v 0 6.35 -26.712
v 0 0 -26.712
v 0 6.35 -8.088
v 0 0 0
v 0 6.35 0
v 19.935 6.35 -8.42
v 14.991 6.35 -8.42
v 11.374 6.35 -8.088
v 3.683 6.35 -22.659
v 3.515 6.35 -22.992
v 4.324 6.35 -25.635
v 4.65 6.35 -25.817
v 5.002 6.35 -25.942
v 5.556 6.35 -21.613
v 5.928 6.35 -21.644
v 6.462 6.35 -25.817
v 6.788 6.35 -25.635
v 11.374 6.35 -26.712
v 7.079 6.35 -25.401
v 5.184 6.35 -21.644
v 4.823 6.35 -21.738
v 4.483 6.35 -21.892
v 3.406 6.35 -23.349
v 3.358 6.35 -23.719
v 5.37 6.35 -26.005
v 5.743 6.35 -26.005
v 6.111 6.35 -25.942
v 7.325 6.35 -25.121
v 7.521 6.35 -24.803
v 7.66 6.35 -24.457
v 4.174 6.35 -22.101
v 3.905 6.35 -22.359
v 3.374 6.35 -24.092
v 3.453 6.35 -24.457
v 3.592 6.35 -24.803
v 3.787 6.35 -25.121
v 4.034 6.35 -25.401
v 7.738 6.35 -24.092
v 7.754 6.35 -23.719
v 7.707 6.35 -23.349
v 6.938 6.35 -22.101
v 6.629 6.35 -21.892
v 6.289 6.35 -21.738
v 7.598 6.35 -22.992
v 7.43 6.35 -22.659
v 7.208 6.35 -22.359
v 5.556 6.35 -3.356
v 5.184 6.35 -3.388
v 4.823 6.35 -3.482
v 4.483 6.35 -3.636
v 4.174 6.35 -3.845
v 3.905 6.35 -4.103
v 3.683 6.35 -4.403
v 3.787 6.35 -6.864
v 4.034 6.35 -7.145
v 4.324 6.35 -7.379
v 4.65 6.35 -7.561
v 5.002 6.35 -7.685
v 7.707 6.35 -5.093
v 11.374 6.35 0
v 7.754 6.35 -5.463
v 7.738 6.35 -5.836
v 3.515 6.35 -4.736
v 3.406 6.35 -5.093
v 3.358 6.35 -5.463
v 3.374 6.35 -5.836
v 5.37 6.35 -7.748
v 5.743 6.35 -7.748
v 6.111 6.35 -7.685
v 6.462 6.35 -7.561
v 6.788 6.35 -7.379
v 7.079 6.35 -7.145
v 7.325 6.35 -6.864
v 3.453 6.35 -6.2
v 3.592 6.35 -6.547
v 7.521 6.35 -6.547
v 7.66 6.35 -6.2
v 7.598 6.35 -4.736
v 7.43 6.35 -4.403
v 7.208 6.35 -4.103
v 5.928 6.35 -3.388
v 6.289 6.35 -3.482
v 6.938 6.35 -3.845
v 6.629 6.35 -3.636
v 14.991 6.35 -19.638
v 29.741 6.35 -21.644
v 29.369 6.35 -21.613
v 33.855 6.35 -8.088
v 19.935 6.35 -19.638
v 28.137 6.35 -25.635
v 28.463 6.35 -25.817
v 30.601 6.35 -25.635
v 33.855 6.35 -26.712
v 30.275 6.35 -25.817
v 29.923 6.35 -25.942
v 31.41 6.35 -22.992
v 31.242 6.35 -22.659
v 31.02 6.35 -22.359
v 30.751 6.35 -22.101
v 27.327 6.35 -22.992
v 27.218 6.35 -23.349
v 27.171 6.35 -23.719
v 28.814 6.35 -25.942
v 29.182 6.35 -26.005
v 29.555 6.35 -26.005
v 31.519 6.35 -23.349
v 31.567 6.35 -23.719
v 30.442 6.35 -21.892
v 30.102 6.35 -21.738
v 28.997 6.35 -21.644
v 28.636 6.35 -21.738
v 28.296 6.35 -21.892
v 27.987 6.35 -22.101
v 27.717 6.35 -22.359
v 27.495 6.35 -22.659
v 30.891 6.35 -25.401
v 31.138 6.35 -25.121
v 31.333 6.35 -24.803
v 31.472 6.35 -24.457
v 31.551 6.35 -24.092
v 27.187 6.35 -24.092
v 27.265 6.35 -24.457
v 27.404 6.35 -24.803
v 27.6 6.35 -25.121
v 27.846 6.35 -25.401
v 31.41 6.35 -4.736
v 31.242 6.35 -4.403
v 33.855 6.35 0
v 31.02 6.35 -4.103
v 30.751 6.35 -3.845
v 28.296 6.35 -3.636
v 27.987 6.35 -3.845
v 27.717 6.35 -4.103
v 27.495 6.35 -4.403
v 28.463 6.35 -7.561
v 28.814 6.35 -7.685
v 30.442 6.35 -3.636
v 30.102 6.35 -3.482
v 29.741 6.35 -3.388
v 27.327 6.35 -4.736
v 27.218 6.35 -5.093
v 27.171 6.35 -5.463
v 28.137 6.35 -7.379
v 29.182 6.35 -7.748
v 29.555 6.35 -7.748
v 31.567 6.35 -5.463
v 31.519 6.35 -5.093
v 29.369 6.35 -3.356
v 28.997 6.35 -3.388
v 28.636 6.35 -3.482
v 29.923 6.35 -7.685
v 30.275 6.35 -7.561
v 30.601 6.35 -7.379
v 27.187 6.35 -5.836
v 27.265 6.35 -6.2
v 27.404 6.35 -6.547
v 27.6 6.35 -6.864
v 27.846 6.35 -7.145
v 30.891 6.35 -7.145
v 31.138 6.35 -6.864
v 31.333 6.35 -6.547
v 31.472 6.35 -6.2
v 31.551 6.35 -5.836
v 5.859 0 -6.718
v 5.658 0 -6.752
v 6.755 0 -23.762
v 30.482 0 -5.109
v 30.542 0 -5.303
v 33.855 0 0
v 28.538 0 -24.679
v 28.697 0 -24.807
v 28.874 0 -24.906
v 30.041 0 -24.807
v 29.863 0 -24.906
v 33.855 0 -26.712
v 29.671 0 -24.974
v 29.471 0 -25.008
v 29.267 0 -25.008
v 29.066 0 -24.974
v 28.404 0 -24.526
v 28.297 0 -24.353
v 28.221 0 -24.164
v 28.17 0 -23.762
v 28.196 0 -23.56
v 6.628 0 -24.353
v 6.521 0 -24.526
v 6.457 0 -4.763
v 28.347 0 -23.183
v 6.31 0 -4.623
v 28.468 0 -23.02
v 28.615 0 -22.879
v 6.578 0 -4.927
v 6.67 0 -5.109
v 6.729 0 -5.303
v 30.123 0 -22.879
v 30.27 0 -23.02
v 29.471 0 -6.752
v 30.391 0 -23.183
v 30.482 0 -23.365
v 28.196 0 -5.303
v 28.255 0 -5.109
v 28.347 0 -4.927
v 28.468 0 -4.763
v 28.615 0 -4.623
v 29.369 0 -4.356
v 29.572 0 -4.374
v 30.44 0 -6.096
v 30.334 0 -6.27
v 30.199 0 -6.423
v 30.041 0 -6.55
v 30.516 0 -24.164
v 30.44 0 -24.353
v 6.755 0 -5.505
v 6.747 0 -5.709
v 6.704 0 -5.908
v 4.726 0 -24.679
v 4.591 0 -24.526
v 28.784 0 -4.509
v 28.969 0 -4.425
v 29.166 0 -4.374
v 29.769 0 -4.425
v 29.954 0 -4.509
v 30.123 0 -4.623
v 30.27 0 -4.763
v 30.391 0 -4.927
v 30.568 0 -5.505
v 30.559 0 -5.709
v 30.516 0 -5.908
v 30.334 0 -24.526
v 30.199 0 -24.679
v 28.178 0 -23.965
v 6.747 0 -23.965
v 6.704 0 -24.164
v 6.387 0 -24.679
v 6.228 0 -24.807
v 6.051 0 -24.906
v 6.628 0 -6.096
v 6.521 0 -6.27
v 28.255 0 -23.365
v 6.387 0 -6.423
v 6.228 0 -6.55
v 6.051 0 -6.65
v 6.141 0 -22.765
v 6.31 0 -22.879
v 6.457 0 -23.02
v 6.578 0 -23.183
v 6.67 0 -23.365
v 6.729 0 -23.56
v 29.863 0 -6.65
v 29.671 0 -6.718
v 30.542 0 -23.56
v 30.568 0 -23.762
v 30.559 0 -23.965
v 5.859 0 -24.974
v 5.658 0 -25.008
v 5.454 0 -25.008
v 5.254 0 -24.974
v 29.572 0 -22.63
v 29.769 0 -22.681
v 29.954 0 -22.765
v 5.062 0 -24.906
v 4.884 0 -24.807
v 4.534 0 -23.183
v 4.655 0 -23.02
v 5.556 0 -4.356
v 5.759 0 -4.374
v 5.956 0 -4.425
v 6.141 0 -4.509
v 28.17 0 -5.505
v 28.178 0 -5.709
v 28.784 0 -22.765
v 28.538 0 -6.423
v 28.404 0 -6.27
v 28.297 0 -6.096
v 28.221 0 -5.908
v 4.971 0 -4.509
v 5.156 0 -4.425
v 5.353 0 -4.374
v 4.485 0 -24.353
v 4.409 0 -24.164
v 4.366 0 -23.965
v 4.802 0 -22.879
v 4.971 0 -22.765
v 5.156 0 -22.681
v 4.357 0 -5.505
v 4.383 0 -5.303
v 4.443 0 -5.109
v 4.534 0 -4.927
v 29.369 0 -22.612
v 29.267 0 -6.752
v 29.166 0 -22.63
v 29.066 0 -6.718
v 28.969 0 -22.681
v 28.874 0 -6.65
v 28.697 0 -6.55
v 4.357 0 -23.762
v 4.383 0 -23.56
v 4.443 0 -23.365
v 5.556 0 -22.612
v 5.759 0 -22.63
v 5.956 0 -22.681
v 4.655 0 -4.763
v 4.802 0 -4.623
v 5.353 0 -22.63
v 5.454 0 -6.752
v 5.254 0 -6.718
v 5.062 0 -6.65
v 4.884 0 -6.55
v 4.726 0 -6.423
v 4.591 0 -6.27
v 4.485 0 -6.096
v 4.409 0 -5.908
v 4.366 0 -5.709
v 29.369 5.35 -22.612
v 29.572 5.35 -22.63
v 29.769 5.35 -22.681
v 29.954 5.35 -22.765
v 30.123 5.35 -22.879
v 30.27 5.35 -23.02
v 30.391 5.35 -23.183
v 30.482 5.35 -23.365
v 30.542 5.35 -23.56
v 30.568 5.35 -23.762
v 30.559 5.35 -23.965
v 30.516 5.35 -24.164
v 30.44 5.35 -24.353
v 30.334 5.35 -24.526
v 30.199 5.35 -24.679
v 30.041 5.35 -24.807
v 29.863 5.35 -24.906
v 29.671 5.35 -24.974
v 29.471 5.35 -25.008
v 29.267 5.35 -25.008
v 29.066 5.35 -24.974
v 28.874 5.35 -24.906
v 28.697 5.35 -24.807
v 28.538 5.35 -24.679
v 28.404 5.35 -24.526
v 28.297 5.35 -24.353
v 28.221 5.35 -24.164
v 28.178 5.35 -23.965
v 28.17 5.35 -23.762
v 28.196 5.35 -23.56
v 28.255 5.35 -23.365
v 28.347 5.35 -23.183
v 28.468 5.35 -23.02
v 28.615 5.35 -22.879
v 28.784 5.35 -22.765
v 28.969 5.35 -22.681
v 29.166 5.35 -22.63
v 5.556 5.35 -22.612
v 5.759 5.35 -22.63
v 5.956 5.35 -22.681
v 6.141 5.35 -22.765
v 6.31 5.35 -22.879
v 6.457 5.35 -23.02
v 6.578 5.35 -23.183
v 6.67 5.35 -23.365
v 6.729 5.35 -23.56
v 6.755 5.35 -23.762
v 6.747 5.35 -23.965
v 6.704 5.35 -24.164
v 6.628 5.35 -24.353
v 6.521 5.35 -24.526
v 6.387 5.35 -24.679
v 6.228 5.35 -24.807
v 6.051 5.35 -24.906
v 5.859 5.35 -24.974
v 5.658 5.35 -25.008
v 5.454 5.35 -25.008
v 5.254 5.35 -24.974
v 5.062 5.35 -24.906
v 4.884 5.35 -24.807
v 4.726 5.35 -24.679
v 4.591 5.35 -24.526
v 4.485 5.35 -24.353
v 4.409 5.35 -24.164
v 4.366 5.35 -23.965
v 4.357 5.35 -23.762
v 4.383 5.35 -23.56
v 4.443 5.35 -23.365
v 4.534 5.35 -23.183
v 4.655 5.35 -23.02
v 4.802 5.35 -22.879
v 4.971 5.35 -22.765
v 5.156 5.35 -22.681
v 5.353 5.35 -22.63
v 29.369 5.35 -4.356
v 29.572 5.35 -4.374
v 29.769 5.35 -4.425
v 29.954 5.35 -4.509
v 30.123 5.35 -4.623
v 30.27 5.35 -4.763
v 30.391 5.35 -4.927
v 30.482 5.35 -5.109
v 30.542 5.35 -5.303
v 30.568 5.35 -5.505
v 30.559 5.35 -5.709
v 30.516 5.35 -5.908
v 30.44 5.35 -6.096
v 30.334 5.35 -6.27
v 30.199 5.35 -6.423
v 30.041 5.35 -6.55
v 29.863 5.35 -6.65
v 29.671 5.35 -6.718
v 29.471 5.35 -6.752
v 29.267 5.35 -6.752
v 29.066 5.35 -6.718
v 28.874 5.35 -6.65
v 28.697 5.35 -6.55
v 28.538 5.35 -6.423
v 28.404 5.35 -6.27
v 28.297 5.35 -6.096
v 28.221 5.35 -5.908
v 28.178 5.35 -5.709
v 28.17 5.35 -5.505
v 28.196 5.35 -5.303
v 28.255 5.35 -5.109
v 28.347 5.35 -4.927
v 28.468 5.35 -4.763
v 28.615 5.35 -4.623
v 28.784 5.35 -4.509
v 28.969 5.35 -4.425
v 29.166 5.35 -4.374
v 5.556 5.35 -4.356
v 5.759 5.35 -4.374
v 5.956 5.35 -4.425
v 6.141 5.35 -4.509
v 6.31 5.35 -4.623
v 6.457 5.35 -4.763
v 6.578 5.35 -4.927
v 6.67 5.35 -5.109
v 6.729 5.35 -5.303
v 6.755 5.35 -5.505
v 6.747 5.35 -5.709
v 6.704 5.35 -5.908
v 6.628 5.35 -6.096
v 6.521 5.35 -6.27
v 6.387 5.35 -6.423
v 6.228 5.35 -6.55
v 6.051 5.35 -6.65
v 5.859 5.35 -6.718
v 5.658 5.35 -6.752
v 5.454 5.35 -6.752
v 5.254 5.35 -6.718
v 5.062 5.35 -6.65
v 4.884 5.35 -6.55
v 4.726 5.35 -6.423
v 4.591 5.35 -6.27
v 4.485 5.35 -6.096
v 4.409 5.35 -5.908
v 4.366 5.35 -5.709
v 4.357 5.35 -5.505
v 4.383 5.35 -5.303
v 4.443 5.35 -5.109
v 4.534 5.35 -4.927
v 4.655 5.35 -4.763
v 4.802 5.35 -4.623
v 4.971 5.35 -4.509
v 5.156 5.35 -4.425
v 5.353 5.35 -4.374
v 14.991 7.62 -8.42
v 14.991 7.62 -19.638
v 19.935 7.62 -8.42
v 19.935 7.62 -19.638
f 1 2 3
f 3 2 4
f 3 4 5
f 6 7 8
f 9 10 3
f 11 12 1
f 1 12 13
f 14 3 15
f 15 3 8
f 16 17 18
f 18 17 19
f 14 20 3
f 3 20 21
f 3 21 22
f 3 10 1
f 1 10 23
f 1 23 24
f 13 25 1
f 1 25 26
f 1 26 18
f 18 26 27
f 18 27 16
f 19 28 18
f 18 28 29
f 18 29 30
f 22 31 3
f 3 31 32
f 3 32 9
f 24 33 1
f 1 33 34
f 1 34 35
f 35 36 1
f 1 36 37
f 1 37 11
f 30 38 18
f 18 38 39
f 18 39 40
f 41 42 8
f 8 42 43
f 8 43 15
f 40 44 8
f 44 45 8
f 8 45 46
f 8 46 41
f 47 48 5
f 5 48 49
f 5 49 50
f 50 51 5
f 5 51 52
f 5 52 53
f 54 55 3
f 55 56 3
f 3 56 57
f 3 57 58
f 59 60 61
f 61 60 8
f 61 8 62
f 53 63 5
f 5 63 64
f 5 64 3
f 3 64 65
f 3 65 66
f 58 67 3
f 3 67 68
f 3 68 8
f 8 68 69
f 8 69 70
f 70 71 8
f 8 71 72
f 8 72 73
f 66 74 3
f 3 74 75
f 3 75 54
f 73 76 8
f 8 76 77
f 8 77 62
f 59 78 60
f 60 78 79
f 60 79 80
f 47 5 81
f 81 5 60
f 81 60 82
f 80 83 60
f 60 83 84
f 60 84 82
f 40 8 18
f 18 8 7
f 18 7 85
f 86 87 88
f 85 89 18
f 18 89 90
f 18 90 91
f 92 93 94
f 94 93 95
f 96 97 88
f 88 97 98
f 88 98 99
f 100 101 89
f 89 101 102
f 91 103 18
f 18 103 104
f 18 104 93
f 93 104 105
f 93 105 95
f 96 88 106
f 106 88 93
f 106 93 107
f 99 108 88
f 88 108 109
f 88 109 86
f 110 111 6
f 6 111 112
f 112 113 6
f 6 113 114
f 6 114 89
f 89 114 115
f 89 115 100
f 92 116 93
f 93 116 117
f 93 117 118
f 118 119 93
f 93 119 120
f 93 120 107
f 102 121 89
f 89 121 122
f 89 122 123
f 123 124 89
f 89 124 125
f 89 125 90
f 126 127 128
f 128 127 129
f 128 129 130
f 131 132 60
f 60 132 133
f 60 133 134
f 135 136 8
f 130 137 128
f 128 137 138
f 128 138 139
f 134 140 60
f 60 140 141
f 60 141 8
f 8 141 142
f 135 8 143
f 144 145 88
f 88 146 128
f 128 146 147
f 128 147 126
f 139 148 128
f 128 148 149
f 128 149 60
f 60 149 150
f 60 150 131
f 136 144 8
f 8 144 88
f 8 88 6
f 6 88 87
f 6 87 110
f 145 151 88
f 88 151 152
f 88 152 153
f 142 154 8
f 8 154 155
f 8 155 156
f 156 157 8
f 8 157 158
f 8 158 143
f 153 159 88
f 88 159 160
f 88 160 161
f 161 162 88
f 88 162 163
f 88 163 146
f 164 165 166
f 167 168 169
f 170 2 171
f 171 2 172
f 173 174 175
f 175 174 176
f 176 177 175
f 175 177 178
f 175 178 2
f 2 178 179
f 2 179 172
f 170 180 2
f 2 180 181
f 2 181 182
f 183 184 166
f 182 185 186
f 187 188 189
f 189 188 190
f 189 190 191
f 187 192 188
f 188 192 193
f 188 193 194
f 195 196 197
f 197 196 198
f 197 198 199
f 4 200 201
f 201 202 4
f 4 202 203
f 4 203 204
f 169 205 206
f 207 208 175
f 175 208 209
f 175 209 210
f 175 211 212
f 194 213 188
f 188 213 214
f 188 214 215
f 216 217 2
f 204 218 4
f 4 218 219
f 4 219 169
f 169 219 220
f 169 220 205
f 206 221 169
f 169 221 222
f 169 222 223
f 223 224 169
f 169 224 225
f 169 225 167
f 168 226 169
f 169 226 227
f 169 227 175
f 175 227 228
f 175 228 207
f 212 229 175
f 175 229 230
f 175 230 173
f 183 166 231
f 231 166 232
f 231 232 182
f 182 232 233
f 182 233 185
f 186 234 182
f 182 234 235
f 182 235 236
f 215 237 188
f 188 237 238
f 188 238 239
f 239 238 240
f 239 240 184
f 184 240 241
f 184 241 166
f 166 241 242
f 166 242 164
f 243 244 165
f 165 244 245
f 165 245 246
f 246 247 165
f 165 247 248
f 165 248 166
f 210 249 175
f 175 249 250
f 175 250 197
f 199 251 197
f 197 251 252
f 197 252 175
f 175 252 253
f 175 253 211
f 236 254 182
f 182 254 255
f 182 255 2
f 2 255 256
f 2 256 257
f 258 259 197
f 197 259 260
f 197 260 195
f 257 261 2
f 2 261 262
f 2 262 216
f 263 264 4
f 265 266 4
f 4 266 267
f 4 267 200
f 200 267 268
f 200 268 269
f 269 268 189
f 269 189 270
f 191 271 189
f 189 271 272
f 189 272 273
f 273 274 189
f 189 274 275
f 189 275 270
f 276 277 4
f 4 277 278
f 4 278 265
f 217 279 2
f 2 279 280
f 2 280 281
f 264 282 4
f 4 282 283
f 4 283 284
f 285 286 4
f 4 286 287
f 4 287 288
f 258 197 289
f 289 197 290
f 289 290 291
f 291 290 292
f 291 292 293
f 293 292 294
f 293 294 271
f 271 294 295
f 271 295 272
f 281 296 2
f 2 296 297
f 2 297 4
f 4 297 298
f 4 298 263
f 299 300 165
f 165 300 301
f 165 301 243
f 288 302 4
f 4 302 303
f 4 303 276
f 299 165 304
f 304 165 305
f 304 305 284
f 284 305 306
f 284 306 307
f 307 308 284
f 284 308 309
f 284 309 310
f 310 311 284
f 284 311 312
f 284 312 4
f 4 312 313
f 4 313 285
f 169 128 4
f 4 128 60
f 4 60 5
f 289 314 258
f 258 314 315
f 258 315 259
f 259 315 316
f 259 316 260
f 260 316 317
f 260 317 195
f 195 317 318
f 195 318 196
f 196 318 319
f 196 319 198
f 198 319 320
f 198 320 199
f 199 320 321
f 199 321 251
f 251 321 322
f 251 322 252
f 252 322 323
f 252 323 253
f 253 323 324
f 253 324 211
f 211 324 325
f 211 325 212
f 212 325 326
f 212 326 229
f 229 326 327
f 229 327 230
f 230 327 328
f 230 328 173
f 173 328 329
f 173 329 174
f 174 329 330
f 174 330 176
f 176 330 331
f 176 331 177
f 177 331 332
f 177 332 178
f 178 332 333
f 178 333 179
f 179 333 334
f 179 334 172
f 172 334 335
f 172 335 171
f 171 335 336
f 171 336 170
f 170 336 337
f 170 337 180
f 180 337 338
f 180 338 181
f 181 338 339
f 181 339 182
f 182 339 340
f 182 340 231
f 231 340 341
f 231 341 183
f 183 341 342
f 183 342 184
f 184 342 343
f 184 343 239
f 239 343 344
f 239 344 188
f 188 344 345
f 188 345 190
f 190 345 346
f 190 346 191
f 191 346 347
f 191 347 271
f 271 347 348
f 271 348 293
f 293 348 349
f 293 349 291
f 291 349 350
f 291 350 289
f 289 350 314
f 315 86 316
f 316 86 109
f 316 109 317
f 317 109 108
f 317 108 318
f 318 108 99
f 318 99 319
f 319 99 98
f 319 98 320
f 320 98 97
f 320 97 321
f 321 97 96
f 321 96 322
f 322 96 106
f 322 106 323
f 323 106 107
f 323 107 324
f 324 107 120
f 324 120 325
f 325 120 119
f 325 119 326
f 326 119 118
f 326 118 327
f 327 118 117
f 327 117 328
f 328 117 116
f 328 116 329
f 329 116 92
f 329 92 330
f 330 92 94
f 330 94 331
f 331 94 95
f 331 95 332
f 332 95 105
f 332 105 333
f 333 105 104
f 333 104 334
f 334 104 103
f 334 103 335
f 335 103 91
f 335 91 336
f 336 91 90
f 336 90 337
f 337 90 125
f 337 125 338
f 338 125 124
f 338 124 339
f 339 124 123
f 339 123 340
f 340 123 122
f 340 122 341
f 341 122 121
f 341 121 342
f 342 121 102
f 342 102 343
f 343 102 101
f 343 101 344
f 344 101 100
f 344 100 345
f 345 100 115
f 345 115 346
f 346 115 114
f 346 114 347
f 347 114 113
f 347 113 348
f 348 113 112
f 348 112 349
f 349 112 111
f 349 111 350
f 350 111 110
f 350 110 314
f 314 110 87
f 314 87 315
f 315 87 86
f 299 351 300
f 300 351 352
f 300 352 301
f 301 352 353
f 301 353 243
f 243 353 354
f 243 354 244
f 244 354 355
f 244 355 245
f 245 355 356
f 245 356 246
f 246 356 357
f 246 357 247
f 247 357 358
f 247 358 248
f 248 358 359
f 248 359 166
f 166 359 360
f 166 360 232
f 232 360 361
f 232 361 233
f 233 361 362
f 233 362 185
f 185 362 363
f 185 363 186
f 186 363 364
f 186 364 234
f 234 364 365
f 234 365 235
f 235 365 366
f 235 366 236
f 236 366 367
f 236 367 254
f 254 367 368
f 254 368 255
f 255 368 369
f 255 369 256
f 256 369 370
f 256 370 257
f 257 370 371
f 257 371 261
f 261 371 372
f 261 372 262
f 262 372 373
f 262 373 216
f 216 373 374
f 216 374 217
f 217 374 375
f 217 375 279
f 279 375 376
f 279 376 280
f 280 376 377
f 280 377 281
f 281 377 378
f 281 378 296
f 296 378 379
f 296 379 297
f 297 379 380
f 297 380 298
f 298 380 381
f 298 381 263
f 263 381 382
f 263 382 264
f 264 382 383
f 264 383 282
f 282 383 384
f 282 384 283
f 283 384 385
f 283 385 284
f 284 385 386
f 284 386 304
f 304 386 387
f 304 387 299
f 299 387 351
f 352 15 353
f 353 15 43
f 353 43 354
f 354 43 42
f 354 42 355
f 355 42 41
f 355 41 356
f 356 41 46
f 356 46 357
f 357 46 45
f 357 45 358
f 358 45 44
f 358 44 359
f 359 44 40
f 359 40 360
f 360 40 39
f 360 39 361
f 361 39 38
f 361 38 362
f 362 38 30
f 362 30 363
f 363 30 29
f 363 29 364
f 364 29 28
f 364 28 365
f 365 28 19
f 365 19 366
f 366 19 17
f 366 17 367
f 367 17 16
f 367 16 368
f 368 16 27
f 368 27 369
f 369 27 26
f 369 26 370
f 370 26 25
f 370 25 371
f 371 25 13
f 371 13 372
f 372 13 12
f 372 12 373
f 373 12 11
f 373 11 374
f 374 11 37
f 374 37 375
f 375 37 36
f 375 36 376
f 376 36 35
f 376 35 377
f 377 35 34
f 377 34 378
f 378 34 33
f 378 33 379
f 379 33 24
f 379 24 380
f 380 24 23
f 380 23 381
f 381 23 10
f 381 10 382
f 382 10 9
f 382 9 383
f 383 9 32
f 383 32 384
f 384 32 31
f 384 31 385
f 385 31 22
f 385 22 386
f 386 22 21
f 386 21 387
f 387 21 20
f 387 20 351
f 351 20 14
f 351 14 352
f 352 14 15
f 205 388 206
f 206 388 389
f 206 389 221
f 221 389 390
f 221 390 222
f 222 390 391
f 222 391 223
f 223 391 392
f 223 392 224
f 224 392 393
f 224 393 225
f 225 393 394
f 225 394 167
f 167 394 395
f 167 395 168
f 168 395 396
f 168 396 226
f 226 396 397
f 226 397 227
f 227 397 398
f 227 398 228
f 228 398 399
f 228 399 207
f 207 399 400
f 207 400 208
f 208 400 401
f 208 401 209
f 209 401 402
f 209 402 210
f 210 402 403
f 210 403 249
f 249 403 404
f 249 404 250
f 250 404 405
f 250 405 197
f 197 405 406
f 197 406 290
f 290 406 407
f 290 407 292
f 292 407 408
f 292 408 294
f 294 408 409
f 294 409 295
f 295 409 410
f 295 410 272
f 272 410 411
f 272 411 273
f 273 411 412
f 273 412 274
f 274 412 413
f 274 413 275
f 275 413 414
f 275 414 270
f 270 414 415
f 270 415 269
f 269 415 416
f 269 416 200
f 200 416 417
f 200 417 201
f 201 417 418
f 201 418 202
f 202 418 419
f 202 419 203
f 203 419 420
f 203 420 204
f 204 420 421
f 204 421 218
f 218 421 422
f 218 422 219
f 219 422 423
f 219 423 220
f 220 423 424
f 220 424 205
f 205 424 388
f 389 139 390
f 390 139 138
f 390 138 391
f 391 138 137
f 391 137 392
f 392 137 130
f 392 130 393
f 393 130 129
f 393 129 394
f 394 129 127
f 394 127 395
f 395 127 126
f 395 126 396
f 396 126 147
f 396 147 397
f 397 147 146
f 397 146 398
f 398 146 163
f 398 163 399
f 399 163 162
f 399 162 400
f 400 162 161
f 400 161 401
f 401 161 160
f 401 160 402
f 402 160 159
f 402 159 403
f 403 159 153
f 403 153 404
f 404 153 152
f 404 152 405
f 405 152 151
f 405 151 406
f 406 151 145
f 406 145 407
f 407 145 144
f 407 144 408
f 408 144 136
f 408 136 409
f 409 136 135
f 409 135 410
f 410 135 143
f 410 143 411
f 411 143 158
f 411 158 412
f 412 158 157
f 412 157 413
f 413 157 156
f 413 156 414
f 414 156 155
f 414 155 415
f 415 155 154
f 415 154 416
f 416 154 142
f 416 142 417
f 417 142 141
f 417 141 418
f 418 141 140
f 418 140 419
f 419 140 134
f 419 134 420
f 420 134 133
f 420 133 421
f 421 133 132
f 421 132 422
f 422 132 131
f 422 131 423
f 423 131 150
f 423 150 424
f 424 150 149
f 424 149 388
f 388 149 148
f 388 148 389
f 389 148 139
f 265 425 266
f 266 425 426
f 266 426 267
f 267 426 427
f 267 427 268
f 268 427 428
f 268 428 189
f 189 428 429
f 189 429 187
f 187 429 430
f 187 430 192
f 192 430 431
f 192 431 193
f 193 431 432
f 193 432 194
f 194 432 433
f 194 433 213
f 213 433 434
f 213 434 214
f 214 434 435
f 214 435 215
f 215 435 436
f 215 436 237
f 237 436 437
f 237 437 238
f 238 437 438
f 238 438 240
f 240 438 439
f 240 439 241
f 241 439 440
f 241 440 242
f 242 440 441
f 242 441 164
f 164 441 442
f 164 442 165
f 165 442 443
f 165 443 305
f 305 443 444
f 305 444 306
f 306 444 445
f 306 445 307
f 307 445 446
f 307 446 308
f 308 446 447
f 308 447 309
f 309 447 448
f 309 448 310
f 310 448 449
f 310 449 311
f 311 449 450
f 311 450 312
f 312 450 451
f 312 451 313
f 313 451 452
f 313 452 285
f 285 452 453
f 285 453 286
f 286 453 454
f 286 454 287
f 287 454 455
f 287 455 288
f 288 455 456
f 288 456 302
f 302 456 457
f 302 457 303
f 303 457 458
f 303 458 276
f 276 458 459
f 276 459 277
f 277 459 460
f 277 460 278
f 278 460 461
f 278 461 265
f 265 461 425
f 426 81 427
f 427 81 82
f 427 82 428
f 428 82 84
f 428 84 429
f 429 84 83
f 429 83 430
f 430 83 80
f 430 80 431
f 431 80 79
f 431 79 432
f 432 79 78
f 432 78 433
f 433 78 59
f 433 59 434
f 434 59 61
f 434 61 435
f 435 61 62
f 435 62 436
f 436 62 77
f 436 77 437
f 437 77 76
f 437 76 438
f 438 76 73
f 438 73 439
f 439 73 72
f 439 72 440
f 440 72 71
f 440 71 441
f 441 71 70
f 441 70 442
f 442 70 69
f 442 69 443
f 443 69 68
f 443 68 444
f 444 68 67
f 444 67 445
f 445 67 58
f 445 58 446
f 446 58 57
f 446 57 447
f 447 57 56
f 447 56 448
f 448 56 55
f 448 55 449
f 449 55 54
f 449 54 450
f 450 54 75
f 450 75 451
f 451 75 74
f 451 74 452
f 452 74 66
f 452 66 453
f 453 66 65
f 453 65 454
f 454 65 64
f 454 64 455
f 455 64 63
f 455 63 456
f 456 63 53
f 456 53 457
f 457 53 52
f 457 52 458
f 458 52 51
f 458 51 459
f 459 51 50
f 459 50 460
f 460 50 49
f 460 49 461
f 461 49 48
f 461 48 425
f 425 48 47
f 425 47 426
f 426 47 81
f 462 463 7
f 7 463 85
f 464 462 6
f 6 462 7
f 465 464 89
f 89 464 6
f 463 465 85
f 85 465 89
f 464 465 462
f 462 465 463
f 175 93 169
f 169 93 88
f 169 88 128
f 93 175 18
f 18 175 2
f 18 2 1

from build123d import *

# Parameters (mm, degrees)
SKETCH1_W                                       = 203.2
SKETCH1_H                                       = 107.15625
BOSS_EXTRUDE1_DEPTH                             = 6.35
CSK_FOR_M2_FLAT_HEAD_MACHINE_SCREW1_D           = 2.4
CSK_FOR_M2_FLAT_HEAD_MACHINE_SCREW1_CSINK_D     = 4.4
CSK_FOR_M2_FLAT_HEAD_MACHINE_SCREW1_CSINK_ANGLE = 90
SKETCH4_W                                       = 4.943628295
SKETCH4_H                                       = 11.218233438
BOSS_EXTRUDE2_DEPTH                             = 1.27
SKETCH5_R                                       = 2.2
SKETCH5_W                                       = 33.85522898
SKETCH5_H                                       = 80.444626197
CUT_EXTRUDE1_DEPTH                              = 230.810844857


with BuildPart() as part:
    # Sketch1 → Boss-Extrude1 (new body)
    with BuildSketch(Plane(origin=(0, 0, 0), x_dir=(1, 0, 0), z_dir=(0, 1, 0))):
        with Locations((101.6, 53.578125)):
            Rectangle(SKETCH1_W, SKETCH1_H)
    extrude(amount=BOSS_EXTRUDE1_DEPTH)

    # CSK for M2 Flat Head Machine Screw1 (through all)
    with Locations(Plane(origin=(0, 6.35, 0), x_dir=(1, 0, 0), z_dir=(0, 1, 0))):
        with Locations((5.55625, 101.6), (1.201469153, 116.400099152), (1.201469153, 113.370035287), (29.36875, 101.6), (5.55625, 5.55625), (29.36875, 5.55625), (173.83125, 5.55625), (173.83125, 101.6), (197.64375, 101.6), (197.64375, 5.55625), (5.55625, 83.34375), (29.36875, 83.34375), (5.55625, 23.8125), (173.83125, 83.34375), (197.64375, 83.34375), (173.83125, 23.8125), (197.64375, 23.8125), (29.36875, 23.8125)):
            CounterSinkHole(CSK_FOR_M2_FLAT_HEAD_MACHINE_SCREW1_D / 2, CSK_FOR_M2_FLAT_HEAD_MACHINE_SCREW1_CSINK_D / 2, counter_sink_angle=CSK_FOR_M2_FLAT_HEAD_MACHINE_SCREW1_CSINK_ANGLE)

    # Sketch4 → Boss-Extrude2 (add)
    with BuildSketch(Plane(origin=(0, 6.35, 0), x_dir=(1, 0, 0), z_dir=(0, 1, 0))):
        with Locations((17.463249219, 14.029098644)):
            Rectangle(SKETCH4_W, SKETCH4_H)
    extrude(amount=BOSS_EXTRUDE2_DEPTH)

    # Sketch5 → Cut-Extrude1 (cut, through all)
    # profile 1 of 14: a face of its own
    with BuildSketch(Plane(origin=(0, 6.35, 0), x_dir=(1, 0, 0), z_dir=(0, 1, 0))):
        Polygon((203.2, 107.15625), (33.85522898, 107.15625), (33.85522898, 26.711623803), (33.85522898, 0), (203.2, 0), align=None)
        with Locations((173.83125, 5.55625)):
            Circle(SKETCH5_R, mode=Mode.SUBTRACT)
        with Locations((197.64375, 5.55625)):
            Circle(SKETCH5_R, mode=Mode.SUBTRACT)
        with Locations((173.83125, 23.8125)):
            Circle(SKETCH5_R, mode=Mode.SUBTRACT)
        with Locations((197.64375, 23.8125)):
            Circle(SKETCH5_R, mode=Mode.SUBTRACT)
        with Locations((173.83125, 83.34375)):
            Circle(SKETCH5_R, mode=Mode.SUBTRACT)
        with Locations((197.64375, 83.34375)):
            Circle(SKETCH5_R, mode=Mode.SUBTRACT)
        with Locations((173.83125, 101.6)):
            Circle(SKETCH5_R, mode=Mode.SUBTRACT)
        with Locations((197.64375, 101.6)):
            Circle(SKETCH5_R, mode=Mode.SUBTRACT)
    # profile 2 of 14: a face of its own
    with BuildSketch(Plane(origin=(0, 6.35, 0), x_dir=(1, 0, 0), z_dir=(0, 1, 0))):
        with Locations((16.92761449, 66.933936902)):
            Rectangle(SKETCH5_W, SKETCH5_H)
        with Locations((5.55625, 83.34375)):
            Circle(SKETCH5_R, mode=Mode.SUBTRACT)
        with Locations((29.36875, 83.34375)):
            Circle(SKETCH5_R, mode=Mode.SUBTRACT)
        with Locations((5.55625, 101.6)):
            Circle(SKETCH5_R, mode=Mode.SUBTRACT)
        with Locations((29.36875, 101.6)):
            Circle(SKETCH5_R, mode=Mode.SUBTRACT)
    # profile 3 of 14: a face of its own
    with BuildSketch(Plane(origin=(0, 6.35, 0), x_dir=(1, 0, 0), z_dir=(0, 1, 0))):
        with Locations((5.55625, 83.34375)):
            Circle(SKETCH5_R)
    # profile 4 of 14: a face of its own
    with BuildSketch(Plane(origin=(0, 6.35, 0), x_dir=(1, 0, 0), z_dir=(0, 1, 0))):
        with Locations((5.55625, 101.6)):
            Circle(SKETCH5_R)
    # profile 5 of 14: a face of its own
    with BuildSketch(Plane(origin=(0, 6.35, 0), x_dir=(1, 0, 0), z_dir=(0, 1, 0))):
        with Locations((29.36875, 101.6)):
            Circle(SKETCH5_R)
    # profile 6 of 14: a face of its own
    with BuildSketch(Plane(origin=(0, 6.35, 0), x_dir=(1, 0, 0), z_dir=(0, 1, 0))):
        with Locations((29.36875, 83.34375)):
            Circle(SKETCH5_R)
    # profile 7 of 14: a face of its own
    with BuildSketch(Plane(origin=(0, 6.35, 0), x_dir=(1, 0, 0), z_dir=(0, 1, 0))):
        with Locations((173.83125, 101.6)):
            Circle(SKETCH5_R)
    # profile 8 of 14: a face of its own
    with BuildSketch(Plane(origin=(0, 6.35, 0), x_dir=(1, 0, 0), z_dir=(0, 1, 0))):
        with Locations((197.64375, 101.6)):
            Circle(SKETCH5_R)
    # profile 9 of 14: a face of its own
    with BuildSketch(Plane(origin=(0, 6.35, 0), x_dir=(1, 0, 0), z_dir=(0, 1, 0))):
        with Locations((173.83125, 83.34375)):
            Circle(SKETCH5_R)
    # profile 10 of 14: a face of its own
    with BuildSketch(Plane(origin=(0, 6.35, 0), x_dir=(1, 0, 0), z_dir=(0, 1, 0))):
        with Locations((197.64375, 83.34375)):
            Circle(SKETCH5_R)
    # profile 11 of 14: a face of its own
    with BuildSketch(Plane(origin=(0, 6.35, 0), x_dir=(1, 0, 0), z_dir=(0, 1, 0))):
        with Locations((173.83125, 23.8125)):
            Circle(SKETCH5_R)
    # profile 12 of 14: a face of its own
    with BuildSketch(Plane(origin=(0, 6.35, 0), x_dir=(1, 0, 0), z_dir=(0, 1, 0))):
        with Locations((197.64375, 23.8125)):
            Circle(SKETCH5_R)
    # profile 13 of 14: a face of its own
    with BuildSketch(Plane(origin=(0, 6.35, 0), x_dir=(1, 0, 0), z_dir=(0, 1, 0))):
        with Locations((173.83125, 5.55625)):
            Circle(SKETCH5_R)
    # profile 14 of 14: a face of its own
    with BuildSketch(Plane(origin=(0, 6.35, 0), x_dir=(1, 0, 0), z_dir=(0, 1, 0))):
        with Locations((197.64375, 5.55625)):
            Circle(SKETCH5_R)
    extrude(amount=-CUT_EXTRUDE1_DEPTH, mode=Mode.SUBTRACT)


solid = part.part
